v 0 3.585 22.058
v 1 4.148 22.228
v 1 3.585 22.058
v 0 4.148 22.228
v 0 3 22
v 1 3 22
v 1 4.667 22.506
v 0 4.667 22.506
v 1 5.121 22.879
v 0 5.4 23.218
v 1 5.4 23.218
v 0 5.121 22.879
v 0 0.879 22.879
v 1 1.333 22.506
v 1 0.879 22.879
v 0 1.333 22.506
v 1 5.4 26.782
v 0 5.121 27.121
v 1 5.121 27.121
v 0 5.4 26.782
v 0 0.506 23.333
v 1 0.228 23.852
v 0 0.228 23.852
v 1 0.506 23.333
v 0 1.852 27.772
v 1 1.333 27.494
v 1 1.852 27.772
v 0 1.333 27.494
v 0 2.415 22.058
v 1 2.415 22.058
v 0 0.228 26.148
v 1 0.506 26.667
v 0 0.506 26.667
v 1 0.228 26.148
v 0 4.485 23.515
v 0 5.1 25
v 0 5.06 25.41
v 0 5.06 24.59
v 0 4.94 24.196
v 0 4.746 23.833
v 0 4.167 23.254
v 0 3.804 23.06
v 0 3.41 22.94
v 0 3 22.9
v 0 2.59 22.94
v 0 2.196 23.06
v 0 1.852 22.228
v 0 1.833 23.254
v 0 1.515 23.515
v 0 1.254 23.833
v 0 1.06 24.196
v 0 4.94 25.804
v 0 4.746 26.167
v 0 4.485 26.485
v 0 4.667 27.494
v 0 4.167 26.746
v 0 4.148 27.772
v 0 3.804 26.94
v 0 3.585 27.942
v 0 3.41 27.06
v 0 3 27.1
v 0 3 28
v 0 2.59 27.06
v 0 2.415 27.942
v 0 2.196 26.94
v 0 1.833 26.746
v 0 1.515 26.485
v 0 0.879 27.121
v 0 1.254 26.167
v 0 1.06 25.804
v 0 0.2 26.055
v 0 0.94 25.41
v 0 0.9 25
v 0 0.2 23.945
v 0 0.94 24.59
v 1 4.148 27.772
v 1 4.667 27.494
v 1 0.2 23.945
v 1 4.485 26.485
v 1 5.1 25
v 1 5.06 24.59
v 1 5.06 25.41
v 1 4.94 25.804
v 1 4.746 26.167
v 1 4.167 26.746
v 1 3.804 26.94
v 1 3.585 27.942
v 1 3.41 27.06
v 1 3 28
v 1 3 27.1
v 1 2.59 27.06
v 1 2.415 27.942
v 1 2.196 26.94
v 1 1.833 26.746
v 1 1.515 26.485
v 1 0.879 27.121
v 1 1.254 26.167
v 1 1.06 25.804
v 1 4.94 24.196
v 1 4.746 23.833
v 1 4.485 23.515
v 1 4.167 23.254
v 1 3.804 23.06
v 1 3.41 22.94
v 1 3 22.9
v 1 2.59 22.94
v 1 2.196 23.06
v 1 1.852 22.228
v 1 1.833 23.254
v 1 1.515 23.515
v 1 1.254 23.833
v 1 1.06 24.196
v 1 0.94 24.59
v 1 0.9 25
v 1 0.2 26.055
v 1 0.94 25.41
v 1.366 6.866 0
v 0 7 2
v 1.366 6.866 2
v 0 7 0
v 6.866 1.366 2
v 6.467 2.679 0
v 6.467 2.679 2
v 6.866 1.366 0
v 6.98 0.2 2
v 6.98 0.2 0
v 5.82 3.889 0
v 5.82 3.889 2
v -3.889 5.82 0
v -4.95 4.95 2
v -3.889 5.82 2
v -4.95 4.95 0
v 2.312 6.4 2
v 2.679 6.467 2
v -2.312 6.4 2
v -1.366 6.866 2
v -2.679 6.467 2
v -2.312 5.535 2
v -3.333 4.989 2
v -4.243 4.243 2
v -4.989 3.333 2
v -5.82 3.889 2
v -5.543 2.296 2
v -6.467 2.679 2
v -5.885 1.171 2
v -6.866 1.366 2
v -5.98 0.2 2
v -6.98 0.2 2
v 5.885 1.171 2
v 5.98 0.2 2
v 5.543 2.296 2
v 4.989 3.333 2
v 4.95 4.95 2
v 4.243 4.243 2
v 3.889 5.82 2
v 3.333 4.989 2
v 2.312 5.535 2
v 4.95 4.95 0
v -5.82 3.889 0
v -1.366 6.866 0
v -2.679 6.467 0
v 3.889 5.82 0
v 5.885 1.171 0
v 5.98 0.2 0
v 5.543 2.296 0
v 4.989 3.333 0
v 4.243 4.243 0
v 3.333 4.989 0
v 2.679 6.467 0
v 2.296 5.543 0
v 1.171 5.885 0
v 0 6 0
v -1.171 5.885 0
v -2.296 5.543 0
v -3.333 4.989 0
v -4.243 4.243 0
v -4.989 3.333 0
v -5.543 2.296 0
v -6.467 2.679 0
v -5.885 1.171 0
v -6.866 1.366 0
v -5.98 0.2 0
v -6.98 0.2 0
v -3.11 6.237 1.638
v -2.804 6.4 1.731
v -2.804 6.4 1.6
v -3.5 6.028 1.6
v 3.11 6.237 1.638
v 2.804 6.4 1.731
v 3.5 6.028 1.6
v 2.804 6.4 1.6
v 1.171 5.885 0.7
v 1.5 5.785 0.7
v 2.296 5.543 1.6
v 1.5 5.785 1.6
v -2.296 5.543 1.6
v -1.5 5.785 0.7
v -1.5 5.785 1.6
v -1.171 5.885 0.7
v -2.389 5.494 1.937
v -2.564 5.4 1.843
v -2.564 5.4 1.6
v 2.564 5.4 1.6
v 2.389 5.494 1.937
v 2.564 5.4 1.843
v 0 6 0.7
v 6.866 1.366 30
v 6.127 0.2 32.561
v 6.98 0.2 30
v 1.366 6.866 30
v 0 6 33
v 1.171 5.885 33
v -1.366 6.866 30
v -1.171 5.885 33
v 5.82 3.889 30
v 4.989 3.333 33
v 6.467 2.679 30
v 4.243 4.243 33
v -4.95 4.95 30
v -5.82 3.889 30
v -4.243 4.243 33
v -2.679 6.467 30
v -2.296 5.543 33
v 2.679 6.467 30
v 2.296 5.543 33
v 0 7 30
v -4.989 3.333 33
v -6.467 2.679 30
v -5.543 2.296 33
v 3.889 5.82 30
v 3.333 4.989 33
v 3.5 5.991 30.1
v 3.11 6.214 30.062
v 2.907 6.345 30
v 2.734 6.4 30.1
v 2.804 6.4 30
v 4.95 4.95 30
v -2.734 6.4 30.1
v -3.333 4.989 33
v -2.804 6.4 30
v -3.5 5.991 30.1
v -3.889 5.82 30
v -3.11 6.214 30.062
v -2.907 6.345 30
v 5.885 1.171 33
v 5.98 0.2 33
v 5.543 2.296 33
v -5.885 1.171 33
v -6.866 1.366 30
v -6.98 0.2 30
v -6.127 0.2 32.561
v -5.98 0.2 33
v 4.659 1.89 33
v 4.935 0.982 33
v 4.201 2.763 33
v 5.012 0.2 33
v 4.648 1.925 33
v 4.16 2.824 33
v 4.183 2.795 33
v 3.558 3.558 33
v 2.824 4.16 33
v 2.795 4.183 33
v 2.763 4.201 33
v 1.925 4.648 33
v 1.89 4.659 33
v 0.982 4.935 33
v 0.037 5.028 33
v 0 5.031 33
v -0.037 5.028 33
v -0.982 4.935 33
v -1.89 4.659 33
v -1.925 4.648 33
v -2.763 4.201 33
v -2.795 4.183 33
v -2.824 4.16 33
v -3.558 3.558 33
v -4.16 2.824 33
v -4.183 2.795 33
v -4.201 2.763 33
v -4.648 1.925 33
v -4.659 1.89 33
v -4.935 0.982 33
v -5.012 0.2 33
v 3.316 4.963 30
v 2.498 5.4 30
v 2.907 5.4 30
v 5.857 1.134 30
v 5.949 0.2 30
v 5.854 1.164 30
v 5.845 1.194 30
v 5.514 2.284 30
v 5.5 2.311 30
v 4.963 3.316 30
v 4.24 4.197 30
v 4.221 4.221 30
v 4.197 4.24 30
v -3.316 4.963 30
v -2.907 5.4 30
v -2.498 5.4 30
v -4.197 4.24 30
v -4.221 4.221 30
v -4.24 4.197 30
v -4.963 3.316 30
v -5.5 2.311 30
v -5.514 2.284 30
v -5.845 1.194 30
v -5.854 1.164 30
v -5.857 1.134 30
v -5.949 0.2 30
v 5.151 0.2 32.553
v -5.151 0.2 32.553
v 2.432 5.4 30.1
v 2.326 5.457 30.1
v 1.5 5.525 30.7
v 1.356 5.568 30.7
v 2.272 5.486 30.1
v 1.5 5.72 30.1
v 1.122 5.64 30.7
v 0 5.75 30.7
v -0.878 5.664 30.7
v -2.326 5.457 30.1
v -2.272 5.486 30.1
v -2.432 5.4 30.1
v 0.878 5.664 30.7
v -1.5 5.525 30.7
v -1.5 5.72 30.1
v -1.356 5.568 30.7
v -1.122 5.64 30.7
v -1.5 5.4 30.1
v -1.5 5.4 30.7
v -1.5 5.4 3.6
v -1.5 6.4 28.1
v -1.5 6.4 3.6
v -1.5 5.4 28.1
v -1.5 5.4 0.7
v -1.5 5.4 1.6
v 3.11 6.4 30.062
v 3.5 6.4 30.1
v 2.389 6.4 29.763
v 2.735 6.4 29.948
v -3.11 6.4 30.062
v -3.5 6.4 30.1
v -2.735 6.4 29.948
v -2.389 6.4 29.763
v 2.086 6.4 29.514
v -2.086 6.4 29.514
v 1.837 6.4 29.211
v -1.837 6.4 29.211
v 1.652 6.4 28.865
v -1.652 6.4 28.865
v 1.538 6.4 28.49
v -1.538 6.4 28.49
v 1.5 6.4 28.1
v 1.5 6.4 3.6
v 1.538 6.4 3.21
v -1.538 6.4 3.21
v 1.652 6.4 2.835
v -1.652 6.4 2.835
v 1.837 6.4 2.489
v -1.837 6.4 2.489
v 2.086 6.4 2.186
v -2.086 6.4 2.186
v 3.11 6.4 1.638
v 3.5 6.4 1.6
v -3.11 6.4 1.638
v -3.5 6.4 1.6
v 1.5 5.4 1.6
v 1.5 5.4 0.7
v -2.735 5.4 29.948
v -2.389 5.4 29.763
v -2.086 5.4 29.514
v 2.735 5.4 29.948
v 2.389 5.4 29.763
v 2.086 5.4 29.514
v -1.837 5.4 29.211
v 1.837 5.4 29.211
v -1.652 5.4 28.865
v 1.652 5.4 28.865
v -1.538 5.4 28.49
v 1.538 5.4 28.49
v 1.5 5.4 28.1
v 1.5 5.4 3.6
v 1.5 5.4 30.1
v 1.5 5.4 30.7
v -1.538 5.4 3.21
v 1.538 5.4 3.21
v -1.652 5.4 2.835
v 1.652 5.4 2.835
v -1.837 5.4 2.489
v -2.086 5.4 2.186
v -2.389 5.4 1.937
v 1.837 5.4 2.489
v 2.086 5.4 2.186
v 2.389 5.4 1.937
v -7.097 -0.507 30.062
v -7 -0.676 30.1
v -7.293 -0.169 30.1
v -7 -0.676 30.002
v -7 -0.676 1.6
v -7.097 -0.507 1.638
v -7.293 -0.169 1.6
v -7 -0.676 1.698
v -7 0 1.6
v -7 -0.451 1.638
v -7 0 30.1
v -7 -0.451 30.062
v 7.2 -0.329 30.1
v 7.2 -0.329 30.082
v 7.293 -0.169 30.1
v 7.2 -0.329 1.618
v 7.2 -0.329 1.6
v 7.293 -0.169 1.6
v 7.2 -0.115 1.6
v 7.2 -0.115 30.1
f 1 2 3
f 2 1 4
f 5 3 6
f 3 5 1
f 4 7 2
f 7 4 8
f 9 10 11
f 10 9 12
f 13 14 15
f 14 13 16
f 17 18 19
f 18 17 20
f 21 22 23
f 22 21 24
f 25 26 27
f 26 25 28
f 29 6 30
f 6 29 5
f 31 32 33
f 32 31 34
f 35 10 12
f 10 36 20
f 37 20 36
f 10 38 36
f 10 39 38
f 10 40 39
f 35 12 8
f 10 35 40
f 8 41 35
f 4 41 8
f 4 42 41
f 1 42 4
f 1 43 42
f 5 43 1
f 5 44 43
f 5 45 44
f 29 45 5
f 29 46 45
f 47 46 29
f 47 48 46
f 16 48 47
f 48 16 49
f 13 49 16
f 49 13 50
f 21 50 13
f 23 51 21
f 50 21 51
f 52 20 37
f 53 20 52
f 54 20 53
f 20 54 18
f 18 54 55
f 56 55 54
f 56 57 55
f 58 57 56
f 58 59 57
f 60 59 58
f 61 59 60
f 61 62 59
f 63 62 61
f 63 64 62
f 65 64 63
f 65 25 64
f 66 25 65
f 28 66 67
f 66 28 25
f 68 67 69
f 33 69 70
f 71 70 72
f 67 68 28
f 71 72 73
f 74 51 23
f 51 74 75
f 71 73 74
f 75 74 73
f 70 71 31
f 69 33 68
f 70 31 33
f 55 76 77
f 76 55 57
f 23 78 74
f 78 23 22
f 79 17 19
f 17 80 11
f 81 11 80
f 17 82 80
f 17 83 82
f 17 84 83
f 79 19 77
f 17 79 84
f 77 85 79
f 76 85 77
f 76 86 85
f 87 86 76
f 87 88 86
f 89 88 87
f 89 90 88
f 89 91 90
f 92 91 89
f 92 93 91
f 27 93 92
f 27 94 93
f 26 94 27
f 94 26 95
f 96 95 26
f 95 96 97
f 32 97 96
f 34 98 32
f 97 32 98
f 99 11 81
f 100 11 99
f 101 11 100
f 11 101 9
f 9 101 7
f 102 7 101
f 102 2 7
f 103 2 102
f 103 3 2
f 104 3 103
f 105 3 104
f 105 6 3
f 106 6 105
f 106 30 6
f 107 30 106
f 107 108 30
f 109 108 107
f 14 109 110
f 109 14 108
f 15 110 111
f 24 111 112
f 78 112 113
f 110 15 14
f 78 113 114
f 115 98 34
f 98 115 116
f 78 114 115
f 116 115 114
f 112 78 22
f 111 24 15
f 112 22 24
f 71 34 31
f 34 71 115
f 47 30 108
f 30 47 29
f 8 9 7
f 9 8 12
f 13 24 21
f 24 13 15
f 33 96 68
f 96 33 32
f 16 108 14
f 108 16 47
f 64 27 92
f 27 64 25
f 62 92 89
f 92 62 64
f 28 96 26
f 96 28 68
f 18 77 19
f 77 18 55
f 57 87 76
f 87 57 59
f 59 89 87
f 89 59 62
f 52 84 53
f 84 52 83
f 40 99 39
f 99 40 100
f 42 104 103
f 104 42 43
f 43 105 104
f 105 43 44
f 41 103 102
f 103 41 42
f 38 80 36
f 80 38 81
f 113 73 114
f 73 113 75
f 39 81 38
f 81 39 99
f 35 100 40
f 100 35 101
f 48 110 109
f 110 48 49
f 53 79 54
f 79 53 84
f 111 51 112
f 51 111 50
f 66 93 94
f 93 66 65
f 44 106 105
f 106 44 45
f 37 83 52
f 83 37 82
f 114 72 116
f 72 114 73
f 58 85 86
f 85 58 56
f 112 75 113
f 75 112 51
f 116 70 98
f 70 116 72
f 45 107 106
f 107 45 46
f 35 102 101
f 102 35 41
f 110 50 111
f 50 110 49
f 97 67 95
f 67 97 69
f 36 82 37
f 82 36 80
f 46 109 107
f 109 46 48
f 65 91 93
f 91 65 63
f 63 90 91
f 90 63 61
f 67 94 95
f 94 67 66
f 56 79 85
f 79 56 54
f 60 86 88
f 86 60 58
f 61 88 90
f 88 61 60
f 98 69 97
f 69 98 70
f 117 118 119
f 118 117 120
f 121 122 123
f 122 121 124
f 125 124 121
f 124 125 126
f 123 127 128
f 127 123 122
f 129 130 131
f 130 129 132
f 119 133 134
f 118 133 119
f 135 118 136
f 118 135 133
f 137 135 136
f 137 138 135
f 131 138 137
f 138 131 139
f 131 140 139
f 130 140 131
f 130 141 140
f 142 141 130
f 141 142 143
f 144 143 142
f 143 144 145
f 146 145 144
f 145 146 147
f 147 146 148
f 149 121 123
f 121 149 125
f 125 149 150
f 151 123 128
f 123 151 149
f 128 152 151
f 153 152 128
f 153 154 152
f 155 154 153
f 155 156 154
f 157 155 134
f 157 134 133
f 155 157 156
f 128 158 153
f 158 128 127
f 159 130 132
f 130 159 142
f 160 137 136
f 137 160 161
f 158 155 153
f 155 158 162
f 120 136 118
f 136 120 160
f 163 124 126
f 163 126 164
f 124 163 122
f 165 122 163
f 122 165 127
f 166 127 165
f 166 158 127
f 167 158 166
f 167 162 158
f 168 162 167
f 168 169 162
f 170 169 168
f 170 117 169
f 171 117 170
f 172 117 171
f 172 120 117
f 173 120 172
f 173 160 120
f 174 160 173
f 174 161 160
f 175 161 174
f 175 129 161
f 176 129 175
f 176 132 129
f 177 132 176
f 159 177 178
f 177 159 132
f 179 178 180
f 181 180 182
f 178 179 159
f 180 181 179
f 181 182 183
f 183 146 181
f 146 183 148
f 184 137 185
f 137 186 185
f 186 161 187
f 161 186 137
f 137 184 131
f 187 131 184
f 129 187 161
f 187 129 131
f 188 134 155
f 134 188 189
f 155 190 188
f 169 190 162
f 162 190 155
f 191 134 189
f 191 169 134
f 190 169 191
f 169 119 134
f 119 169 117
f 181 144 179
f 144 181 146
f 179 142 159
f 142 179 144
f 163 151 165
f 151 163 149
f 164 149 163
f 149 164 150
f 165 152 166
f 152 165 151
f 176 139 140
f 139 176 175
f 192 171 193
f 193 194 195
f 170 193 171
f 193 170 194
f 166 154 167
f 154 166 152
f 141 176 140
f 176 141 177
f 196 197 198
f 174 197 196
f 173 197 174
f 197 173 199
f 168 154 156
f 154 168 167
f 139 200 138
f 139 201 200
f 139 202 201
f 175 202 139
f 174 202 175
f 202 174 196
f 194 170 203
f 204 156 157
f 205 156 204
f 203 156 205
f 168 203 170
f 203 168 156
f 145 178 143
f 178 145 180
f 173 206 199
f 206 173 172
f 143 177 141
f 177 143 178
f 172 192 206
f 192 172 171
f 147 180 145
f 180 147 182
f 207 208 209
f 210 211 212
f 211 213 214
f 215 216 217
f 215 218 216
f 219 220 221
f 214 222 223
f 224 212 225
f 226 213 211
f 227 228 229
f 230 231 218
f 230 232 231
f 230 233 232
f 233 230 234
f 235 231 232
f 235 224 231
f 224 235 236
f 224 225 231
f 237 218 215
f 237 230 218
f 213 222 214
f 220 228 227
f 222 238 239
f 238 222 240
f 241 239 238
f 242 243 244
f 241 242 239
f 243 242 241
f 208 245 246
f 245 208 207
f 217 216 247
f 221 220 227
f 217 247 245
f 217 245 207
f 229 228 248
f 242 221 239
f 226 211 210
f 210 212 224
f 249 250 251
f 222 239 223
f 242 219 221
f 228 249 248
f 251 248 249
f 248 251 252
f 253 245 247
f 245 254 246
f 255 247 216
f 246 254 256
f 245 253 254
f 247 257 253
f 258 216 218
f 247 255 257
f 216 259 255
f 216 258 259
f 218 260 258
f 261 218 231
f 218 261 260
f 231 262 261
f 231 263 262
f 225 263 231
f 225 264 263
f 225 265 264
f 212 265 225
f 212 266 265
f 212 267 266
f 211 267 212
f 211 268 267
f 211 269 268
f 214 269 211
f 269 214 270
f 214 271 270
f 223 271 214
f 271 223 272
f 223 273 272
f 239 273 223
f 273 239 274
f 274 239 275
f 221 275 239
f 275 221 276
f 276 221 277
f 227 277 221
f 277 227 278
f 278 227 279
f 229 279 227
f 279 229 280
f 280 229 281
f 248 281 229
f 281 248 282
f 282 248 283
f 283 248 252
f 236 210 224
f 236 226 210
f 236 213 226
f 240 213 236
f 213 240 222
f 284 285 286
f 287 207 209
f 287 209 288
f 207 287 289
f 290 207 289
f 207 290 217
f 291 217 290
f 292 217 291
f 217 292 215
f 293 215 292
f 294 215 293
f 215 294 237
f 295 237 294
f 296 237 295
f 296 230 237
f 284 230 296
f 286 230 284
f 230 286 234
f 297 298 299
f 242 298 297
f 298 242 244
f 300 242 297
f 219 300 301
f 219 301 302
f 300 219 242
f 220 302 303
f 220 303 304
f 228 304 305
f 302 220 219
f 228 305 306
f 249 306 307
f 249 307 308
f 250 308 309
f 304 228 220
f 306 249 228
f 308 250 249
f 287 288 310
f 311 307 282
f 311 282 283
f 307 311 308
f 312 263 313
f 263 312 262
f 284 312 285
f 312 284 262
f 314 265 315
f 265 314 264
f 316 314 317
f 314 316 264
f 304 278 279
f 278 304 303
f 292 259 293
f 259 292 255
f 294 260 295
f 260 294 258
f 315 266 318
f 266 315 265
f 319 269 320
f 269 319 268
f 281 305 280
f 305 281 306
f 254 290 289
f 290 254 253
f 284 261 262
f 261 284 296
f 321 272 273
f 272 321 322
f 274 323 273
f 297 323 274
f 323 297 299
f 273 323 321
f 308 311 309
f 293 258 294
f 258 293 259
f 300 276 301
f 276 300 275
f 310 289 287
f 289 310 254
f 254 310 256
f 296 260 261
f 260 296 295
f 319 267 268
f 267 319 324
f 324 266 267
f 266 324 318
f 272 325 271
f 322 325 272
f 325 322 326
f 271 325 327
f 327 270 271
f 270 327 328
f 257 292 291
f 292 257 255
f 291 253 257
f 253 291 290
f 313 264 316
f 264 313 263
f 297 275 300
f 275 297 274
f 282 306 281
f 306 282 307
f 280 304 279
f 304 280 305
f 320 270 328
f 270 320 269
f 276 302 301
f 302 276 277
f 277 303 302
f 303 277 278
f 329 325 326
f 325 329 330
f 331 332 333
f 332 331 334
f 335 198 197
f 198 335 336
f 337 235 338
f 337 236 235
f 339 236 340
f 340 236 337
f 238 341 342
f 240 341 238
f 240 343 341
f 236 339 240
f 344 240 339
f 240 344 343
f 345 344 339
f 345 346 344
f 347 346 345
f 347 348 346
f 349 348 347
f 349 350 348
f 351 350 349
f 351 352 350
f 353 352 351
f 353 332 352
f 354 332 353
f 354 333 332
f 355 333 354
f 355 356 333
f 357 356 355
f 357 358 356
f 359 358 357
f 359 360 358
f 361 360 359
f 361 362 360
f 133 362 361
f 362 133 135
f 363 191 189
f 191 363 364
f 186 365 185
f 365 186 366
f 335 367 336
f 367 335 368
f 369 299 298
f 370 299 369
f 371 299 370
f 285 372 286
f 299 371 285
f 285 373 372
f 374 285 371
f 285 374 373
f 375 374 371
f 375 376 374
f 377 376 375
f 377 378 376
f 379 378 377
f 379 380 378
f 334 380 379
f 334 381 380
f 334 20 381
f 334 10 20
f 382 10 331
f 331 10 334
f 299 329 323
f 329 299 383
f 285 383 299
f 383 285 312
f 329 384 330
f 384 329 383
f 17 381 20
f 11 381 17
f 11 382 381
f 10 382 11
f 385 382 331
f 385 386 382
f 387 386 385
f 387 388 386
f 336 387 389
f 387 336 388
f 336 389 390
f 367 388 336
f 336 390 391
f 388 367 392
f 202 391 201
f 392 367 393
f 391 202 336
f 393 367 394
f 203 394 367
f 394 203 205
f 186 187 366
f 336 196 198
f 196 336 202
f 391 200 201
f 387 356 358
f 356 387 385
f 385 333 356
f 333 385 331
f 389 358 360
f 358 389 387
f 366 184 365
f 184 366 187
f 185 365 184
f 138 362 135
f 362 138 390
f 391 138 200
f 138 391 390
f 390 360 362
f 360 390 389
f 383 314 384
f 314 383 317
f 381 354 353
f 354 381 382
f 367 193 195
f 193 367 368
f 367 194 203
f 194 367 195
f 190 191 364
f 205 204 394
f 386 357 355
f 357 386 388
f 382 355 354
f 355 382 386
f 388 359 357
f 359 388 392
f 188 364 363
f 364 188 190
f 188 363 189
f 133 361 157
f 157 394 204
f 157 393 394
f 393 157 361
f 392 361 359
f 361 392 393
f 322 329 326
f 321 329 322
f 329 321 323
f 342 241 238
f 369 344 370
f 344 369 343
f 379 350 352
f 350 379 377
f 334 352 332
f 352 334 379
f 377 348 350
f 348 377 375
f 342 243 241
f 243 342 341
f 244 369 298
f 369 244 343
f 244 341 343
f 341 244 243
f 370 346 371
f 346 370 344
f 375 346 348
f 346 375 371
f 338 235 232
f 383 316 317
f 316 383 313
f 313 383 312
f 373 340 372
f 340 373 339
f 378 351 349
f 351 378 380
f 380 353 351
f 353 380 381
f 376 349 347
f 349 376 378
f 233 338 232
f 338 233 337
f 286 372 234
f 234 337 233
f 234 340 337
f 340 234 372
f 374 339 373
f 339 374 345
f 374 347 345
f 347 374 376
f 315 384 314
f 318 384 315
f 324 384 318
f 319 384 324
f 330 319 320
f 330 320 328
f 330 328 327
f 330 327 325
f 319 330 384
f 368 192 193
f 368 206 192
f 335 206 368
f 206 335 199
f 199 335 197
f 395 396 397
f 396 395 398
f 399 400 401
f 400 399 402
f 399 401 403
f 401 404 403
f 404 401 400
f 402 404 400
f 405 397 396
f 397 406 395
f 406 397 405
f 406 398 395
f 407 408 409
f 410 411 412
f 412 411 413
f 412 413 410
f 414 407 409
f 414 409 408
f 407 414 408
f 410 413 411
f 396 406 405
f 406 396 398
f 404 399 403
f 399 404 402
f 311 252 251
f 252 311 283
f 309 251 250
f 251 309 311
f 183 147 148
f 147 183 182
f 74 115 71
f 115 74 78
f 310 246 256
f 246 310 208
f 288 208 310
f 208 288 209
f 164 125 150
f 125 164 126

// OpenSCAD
// Housing for BME/BMP280 temperature/humidity/pressure sensor
// Developed for Australian Plant Phenomics Facility, ANU node


/* [Settings:] */ 

// adjustment for rounding error
fudge=0.2; // [0.1:0.05:0.5]

// curve resolution
$fn=32; // [32, 64, 128, 256]

// Diameter of the largest bit
pipe_diameter_outer=14;

// Number of arms connecting cable and pipe holder
//n_arms = 7; // [1:1:30]

// Adjust position of connector arms
//arm_adjustment = 10; //[0:1:180]

// Select part
//part = "all"; // [all, base ring, sensor mount]

/* [Hidden] */ 
// Derived variables and constants
fudge_adj=fudge/2;

module sensor(){
cube([13+fudge, 10.4+fudge, 1.6+fudge]);
}

module ring(od, id, height){
    difference(){
        cylinder(height,od/2,od/2);
        translate([0,0,-fudge_adj]) cylinder(height+fudge,id/2,id/2);
    }
}

module curved_ring(top, bottom, thickness, height){
    difference(){
        cylinder(height,top/2,bottom/2);
        translate([0,0,-fudge_adj]) cylinder(height+fudge,(top-thickness)/2,(bottom-thickness)/2);
    }
}

module sensor_ring(){
    inner=4.0;
    outer=2;
    ring(inner+outer, inner+fudge, 1);
}

// depreciated
//module sensor_rail(){
//difference(){
//    translate([fudge,-1+fudge_adj,-1+fudge_adj]) cube([11,12.4,3.6]);
//    union(){
//        translate([-2,1.5,-2]) cube([15,7.4,5.6]);
//        sensor();
//    }
//}
//}

module cable_holder(){
    //ring(13,12,4);
    thickness=1;
    id1=12;
    id2=2;
    od1=id2+thickness;
    od2=id1+thickness;
    height=12;
    difference(){
        cylinder(height,od1/2,od2/2);
        translate([0,0,-fudge_adj]) cylinder(height+fudge,id2/2,id1/2);
    }
}

module pipe_holder(){
    ring(pipe_diameter_outer,pipe_diameter_outer-2,2);
}

module circle_line(){
    translate([3.5,0,1]) difference(){
        ring(10,9,4);
        rotate([0,0,20]) translate([-5,-3.5,-fudge]) cube([15,15,5]);
    }
}

module circle_lines(num){
    function angle(i,num)=i*(360/num)+arm_adjustment; // evenly spread arms in a circle
    for(i=[1:num]){
        // add an arm each rotation
        rotate([20,0,angle(i,num)])
        circle_line();
    }
}

module sensor_mount_ring(){
    center_diff=(pipe_diameter_outer/2)-6.5;
    height=-3;
    color("DeepSkyBlue") union(){
        translate([0,center_diff+2.5,28+height]) rotate([0,90,0]) sensor_ring();
        //translate([-1,center_diff+5.2,4.2+height]) cube([2,1,30]);
    }
}

module support_curve(){
    difference(){
        cube([2,2,1]);
        translate([0,0,-0.5]) cylinder(3,2,2);
    }
}

module support_pillar(){
    top=27.2+fudge;
    bottom=3.1-fudge;
    cube([3,1,30]);
    translate([-2,0,bottom]) rotate([-90,0,0]) support_curve();
    translate([5,1,bottom]) rotate([-90,0,180]) support_curve();
    translate([-2,1,top]) rotate([90,0,0]) support_curve();
    translate([5,0,top]) rotate([90,0,180]) support_curve();
}

module base_bracer(){
    color("orange") union(){
        //translate([0,0,0]) circle_lines(n_arms);
        pipe_holder();
        translate([0,0,30]) curved_ring(pipe_diameter_outer,pipe_diameter_outer-2,2,3);
        //translate([0,0,-12]) cable_holder();
    }
}

module support_pillars(){
    center_diff=(pipe_diameter_outer/2)-6.8;
    height=-3.5;
    offset=-1.5;
    translate([offset,center_diff+5.2,4.2+height]) support_pillar();
    rotate([0,0,120]) translate([offset,center_diff+5.2,4.2+height]) support_pillar();
    rotate([0,0,240]) translate([offset,center_diff+5.2,4.2+height]) support_pillar();
}

difference(){
union(){
    sensor_mount_ring();
    base_bracer();

    support_pillars();
}
    // chop in half to fit
    translate([-pipe_diameter_outer/2,-pipe_diameter_outer,-fudge]) cube([pipe_diameter_outer+fudge,pipe_diameter_outer+fudge,40]);
}

//if((part=="all")||(part=="base ring")){
//    difference(){
//        base_bracer();
//        union(){
//            translate([fudge,-fudge,0]) sensor_mount_ring();
//            translate([-fudge,-fudge,0]) sensor_mount_ring();
//        }
//    }
//}
//
//if((part=="all")||(part=="sensor mount")){
//    sensor_mount_ring();
//}
